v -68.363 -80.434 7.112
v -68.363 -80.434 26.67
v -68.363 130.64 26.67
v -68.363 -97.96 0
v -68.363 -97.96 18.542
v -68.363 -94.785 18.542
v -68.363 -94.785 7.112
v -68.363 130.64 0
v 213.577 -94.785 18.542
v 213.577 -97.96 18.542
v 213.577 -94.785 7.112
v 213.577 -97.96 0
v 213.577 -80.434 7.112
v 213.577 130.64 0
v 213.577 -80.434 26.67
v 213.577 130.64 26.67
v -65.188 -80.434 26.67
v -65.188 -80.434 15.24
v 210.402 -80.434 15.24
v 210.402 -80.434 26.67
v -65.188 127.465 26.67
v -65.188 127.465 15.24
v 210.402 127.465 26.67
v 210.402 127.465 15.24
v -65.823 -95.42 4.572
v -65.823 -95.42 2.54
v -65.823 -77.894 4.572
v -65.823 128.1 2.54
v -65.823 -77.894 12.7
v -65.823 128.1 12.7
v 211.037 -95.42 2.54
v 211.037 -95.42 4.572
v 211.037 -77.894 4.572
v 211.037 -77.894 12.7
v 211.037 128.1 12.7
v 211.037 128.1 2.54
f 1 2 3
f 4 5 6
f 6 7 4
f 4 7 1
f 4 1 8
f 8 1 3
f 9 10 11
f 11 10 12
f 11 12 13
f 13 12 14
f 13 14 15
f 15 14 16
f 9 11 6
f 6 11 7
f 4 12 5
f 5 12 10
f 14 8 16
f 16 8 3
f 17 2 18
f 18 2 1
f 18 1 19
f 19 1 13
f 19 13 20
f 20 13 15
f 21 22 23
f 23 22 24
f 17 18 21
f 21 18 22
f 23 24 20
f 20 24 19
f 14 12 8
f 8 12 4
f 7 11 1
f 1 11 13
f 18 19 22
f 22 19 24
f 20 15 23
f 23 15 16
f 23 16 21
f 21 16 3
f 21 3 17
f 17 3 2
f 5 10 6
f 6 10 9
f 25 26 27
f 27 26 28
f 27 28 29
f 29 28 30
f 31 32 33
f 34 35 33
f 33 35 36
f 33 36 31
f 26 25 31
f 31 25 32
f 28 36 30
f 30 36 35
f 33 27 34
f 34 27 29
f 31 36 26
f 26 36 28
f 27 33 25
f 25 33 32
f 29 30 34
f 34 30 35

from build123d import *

# Parameters (mm, degrees)
SKETCH1_W            = 281.94
SKETCH1_H            = 228.6
BOSS_EXTRUDE2_DEPTH  = 25.4
SKETCH3_W            = 281.94
SKETCH3_H            = 17.526
CUT_EXTRUDE1_DEPTH   = 8.128
SKETCH4_W            = 11.43
SKETCH4_H            = 211.074
BOSS_EXTRUDE4_DEPTH  = 3.175
SKETCH5_W            = 278.765
SKETCH5_H            = 11.43
BOSS_EXTRUDE9_DEPTH  = 3.175
SKETCH9_W            = 11.43
SKETCH9_H            = 207.899
BOSS_EXTRUDE10_DEPTH = 3.175
SKETCH8_W            = 281.94
SKETCH8_H            = 11.43
BOSS_EXTRUDE11_DEPTH = 3.175
SKETCH10_W           = 281.94
SKETCH10_H           = 14.351
CUT_EXTRUDE2_DEPTH   = 10.16
SKETCH11_W           = 275.59
SKETCH11_H           = 207.899
CUT_EXTRUDE3_DEPTH   = 10.16
CUT_EXTRUDE4_DEPTH   = 10.16
SKETCH13_W           = 281.94
SKETCH13_H           = 3.175
CUT_EXTRUDE5_DEPTH   = 10.16
SHELL4_START         = -65.823170732
SHELL4_DEPTH         = 276.86


# Read off the part's stored shape, not the designer's step: Shell4
with BuildPart() as part:
    # Sketch1 → Boss-Extrude2 (new body)
    with BuildSketch(Plane.XY):
        with Locations((72.606829268, 16.339634146)):
            Rectangle(SKETCH1_W, SKETCH1_H)
    extrude(amount=BOSS_EXTRUDE2_DEPTH)

    # Sketch3 → Cut-Extrude1 (cut)
    with BuildSketch(Plane.XY.offset(25.4)):
        with Locations((72.606829268, -89.197365854)):
            Rectangle(SKETCH3_W, SKETCH3_H)
    extrude(amount=-CUT_EXTRUDE1_DEPTH, mode=Mode.SUBTRACT)



with BuildPart() as body_2:
    # Sketch4 → Boss-Extrude4 (new body)
    with BuildSketch(Plane.ZY.offset(68.363170732)):
        with Locations((31.115, 25.102634146)):
            Rectangle(SKETCH4_W, SKETCH4_H)
    extrude(amount=-BOSS_EXTRUDE4_DEPTH)


with BuildPart() as part_1:
    add(part.part)

    add(body_2.part)  # Boss-Extrude9 merges body 2
    # Sketch5 → Boss-Extrude9 (add)
    with BuildSketch(Plane(origin=(0, 130.639634146, 0), x_dir=(1, 0, 0), z_dir=(0, 1, 0))):
        with Locations((74.194329268, -31.115)):
            Rectangle(SKETCH5_W, SKETCH5_H)
    extrude(amount=-BOSS_EXTRUDE9_DEPTH)

    # Sketch9 → Boss-Extrude10 (add)
    with BuildSketch(Plane(origin=(213.576829268, 0, 0), x_dir=(0, 0, -1), z_dir=(1, 0, 0))):
        with Locations((-31.115, 23.515134146)):
            Rectangle(SKETCH9_W, SKETCH9_H)
    extrude(amount=-BOSS_EXTRUDE10_DEPTH)


with BuildPart() as body_2_2:
    # Sketch8 → Boss-Extrude11 (new body)
    with BuildSketch(Plane.XZ.offset(97.960365854)):
        with Locations((72.606829268, 22.987)):
            Rectangle(SKETCH8_W, SKETCH8_H)
    extrude(amount=-BOSS_EXTRUDE11_DEPTH)

    # Combine1: union part
    add(part_1.part)

    # Sketch10 → Cut-Extrude2 (cut)
    with BuildSketch(Plane.XY.offset(17.272)):
        with Locations((72.606829268, -87.609865854)):
            Rectangle(SKETCH10_W, SKETCH10_H)
    extrude(amount=-CUT_EXTRUDE2_DEPTH, mode=Mode.SUBTRACT)

    # Sketch11 → Cut-Extrude3 (cut)
    with BuildSketch(Plane.XY.offset(25.4)):
        with Locations((72.606829268, 23.515134146)):
            Rectangle(SKETCH11_W, SKETCH11_H)
    extrude(amount=-CUT_EXTRUDE3_DEPTH, mode=Mode.SUBTRACT)

    # Sketch12 → Cut-Extrude4 (cut)
    with BuildSketch(Plane.XY.offset(36.83)):
        Polygon((-68.363170732, -80.434365854), (-65.188170732, -80.434365854), (-65.188170732, 127.464634146), (210.401829268, 127.464634146), (210.401829268, -80.434365854), (213.576829268, -80.434365854), (213.576829268, 130.639634146), (-68.363170732, 130.639634146), align=None)
    extrude(amount=-CUT_EXTRUDE4_DEPTH, mode=Mode.SUBTRACT)

    # Sketch13 → Cut-Extrude5 (cut)
    with BuildSketch(Plane.XY.offset(28.702)):
        with Locations((72.606829268, -96.372865854)):
            Rectangle(SKETCH13_W, SKETCH13_H)
    extrude(amount=-CUT_EXTRUDE5_DEPTH, mode=Mode.SUBTRACT)

    # Shell4 outline → Shell4 (cut)
    with BuildSketch(Plane.YZ.offset(SHELL4_START)):
        Polygon((-95.420365854, 4.572), (-95.420365854, 2.54), (128.099634146, 2.54), (128.099634146, 12.7), (-77.894365854, 12.7), (-77.894365854, 4.572), align=None)
    extrude(amount=SHELL4_DEPTH, mode=Mode.SUBTRACT)


solid = body_2_2.part
